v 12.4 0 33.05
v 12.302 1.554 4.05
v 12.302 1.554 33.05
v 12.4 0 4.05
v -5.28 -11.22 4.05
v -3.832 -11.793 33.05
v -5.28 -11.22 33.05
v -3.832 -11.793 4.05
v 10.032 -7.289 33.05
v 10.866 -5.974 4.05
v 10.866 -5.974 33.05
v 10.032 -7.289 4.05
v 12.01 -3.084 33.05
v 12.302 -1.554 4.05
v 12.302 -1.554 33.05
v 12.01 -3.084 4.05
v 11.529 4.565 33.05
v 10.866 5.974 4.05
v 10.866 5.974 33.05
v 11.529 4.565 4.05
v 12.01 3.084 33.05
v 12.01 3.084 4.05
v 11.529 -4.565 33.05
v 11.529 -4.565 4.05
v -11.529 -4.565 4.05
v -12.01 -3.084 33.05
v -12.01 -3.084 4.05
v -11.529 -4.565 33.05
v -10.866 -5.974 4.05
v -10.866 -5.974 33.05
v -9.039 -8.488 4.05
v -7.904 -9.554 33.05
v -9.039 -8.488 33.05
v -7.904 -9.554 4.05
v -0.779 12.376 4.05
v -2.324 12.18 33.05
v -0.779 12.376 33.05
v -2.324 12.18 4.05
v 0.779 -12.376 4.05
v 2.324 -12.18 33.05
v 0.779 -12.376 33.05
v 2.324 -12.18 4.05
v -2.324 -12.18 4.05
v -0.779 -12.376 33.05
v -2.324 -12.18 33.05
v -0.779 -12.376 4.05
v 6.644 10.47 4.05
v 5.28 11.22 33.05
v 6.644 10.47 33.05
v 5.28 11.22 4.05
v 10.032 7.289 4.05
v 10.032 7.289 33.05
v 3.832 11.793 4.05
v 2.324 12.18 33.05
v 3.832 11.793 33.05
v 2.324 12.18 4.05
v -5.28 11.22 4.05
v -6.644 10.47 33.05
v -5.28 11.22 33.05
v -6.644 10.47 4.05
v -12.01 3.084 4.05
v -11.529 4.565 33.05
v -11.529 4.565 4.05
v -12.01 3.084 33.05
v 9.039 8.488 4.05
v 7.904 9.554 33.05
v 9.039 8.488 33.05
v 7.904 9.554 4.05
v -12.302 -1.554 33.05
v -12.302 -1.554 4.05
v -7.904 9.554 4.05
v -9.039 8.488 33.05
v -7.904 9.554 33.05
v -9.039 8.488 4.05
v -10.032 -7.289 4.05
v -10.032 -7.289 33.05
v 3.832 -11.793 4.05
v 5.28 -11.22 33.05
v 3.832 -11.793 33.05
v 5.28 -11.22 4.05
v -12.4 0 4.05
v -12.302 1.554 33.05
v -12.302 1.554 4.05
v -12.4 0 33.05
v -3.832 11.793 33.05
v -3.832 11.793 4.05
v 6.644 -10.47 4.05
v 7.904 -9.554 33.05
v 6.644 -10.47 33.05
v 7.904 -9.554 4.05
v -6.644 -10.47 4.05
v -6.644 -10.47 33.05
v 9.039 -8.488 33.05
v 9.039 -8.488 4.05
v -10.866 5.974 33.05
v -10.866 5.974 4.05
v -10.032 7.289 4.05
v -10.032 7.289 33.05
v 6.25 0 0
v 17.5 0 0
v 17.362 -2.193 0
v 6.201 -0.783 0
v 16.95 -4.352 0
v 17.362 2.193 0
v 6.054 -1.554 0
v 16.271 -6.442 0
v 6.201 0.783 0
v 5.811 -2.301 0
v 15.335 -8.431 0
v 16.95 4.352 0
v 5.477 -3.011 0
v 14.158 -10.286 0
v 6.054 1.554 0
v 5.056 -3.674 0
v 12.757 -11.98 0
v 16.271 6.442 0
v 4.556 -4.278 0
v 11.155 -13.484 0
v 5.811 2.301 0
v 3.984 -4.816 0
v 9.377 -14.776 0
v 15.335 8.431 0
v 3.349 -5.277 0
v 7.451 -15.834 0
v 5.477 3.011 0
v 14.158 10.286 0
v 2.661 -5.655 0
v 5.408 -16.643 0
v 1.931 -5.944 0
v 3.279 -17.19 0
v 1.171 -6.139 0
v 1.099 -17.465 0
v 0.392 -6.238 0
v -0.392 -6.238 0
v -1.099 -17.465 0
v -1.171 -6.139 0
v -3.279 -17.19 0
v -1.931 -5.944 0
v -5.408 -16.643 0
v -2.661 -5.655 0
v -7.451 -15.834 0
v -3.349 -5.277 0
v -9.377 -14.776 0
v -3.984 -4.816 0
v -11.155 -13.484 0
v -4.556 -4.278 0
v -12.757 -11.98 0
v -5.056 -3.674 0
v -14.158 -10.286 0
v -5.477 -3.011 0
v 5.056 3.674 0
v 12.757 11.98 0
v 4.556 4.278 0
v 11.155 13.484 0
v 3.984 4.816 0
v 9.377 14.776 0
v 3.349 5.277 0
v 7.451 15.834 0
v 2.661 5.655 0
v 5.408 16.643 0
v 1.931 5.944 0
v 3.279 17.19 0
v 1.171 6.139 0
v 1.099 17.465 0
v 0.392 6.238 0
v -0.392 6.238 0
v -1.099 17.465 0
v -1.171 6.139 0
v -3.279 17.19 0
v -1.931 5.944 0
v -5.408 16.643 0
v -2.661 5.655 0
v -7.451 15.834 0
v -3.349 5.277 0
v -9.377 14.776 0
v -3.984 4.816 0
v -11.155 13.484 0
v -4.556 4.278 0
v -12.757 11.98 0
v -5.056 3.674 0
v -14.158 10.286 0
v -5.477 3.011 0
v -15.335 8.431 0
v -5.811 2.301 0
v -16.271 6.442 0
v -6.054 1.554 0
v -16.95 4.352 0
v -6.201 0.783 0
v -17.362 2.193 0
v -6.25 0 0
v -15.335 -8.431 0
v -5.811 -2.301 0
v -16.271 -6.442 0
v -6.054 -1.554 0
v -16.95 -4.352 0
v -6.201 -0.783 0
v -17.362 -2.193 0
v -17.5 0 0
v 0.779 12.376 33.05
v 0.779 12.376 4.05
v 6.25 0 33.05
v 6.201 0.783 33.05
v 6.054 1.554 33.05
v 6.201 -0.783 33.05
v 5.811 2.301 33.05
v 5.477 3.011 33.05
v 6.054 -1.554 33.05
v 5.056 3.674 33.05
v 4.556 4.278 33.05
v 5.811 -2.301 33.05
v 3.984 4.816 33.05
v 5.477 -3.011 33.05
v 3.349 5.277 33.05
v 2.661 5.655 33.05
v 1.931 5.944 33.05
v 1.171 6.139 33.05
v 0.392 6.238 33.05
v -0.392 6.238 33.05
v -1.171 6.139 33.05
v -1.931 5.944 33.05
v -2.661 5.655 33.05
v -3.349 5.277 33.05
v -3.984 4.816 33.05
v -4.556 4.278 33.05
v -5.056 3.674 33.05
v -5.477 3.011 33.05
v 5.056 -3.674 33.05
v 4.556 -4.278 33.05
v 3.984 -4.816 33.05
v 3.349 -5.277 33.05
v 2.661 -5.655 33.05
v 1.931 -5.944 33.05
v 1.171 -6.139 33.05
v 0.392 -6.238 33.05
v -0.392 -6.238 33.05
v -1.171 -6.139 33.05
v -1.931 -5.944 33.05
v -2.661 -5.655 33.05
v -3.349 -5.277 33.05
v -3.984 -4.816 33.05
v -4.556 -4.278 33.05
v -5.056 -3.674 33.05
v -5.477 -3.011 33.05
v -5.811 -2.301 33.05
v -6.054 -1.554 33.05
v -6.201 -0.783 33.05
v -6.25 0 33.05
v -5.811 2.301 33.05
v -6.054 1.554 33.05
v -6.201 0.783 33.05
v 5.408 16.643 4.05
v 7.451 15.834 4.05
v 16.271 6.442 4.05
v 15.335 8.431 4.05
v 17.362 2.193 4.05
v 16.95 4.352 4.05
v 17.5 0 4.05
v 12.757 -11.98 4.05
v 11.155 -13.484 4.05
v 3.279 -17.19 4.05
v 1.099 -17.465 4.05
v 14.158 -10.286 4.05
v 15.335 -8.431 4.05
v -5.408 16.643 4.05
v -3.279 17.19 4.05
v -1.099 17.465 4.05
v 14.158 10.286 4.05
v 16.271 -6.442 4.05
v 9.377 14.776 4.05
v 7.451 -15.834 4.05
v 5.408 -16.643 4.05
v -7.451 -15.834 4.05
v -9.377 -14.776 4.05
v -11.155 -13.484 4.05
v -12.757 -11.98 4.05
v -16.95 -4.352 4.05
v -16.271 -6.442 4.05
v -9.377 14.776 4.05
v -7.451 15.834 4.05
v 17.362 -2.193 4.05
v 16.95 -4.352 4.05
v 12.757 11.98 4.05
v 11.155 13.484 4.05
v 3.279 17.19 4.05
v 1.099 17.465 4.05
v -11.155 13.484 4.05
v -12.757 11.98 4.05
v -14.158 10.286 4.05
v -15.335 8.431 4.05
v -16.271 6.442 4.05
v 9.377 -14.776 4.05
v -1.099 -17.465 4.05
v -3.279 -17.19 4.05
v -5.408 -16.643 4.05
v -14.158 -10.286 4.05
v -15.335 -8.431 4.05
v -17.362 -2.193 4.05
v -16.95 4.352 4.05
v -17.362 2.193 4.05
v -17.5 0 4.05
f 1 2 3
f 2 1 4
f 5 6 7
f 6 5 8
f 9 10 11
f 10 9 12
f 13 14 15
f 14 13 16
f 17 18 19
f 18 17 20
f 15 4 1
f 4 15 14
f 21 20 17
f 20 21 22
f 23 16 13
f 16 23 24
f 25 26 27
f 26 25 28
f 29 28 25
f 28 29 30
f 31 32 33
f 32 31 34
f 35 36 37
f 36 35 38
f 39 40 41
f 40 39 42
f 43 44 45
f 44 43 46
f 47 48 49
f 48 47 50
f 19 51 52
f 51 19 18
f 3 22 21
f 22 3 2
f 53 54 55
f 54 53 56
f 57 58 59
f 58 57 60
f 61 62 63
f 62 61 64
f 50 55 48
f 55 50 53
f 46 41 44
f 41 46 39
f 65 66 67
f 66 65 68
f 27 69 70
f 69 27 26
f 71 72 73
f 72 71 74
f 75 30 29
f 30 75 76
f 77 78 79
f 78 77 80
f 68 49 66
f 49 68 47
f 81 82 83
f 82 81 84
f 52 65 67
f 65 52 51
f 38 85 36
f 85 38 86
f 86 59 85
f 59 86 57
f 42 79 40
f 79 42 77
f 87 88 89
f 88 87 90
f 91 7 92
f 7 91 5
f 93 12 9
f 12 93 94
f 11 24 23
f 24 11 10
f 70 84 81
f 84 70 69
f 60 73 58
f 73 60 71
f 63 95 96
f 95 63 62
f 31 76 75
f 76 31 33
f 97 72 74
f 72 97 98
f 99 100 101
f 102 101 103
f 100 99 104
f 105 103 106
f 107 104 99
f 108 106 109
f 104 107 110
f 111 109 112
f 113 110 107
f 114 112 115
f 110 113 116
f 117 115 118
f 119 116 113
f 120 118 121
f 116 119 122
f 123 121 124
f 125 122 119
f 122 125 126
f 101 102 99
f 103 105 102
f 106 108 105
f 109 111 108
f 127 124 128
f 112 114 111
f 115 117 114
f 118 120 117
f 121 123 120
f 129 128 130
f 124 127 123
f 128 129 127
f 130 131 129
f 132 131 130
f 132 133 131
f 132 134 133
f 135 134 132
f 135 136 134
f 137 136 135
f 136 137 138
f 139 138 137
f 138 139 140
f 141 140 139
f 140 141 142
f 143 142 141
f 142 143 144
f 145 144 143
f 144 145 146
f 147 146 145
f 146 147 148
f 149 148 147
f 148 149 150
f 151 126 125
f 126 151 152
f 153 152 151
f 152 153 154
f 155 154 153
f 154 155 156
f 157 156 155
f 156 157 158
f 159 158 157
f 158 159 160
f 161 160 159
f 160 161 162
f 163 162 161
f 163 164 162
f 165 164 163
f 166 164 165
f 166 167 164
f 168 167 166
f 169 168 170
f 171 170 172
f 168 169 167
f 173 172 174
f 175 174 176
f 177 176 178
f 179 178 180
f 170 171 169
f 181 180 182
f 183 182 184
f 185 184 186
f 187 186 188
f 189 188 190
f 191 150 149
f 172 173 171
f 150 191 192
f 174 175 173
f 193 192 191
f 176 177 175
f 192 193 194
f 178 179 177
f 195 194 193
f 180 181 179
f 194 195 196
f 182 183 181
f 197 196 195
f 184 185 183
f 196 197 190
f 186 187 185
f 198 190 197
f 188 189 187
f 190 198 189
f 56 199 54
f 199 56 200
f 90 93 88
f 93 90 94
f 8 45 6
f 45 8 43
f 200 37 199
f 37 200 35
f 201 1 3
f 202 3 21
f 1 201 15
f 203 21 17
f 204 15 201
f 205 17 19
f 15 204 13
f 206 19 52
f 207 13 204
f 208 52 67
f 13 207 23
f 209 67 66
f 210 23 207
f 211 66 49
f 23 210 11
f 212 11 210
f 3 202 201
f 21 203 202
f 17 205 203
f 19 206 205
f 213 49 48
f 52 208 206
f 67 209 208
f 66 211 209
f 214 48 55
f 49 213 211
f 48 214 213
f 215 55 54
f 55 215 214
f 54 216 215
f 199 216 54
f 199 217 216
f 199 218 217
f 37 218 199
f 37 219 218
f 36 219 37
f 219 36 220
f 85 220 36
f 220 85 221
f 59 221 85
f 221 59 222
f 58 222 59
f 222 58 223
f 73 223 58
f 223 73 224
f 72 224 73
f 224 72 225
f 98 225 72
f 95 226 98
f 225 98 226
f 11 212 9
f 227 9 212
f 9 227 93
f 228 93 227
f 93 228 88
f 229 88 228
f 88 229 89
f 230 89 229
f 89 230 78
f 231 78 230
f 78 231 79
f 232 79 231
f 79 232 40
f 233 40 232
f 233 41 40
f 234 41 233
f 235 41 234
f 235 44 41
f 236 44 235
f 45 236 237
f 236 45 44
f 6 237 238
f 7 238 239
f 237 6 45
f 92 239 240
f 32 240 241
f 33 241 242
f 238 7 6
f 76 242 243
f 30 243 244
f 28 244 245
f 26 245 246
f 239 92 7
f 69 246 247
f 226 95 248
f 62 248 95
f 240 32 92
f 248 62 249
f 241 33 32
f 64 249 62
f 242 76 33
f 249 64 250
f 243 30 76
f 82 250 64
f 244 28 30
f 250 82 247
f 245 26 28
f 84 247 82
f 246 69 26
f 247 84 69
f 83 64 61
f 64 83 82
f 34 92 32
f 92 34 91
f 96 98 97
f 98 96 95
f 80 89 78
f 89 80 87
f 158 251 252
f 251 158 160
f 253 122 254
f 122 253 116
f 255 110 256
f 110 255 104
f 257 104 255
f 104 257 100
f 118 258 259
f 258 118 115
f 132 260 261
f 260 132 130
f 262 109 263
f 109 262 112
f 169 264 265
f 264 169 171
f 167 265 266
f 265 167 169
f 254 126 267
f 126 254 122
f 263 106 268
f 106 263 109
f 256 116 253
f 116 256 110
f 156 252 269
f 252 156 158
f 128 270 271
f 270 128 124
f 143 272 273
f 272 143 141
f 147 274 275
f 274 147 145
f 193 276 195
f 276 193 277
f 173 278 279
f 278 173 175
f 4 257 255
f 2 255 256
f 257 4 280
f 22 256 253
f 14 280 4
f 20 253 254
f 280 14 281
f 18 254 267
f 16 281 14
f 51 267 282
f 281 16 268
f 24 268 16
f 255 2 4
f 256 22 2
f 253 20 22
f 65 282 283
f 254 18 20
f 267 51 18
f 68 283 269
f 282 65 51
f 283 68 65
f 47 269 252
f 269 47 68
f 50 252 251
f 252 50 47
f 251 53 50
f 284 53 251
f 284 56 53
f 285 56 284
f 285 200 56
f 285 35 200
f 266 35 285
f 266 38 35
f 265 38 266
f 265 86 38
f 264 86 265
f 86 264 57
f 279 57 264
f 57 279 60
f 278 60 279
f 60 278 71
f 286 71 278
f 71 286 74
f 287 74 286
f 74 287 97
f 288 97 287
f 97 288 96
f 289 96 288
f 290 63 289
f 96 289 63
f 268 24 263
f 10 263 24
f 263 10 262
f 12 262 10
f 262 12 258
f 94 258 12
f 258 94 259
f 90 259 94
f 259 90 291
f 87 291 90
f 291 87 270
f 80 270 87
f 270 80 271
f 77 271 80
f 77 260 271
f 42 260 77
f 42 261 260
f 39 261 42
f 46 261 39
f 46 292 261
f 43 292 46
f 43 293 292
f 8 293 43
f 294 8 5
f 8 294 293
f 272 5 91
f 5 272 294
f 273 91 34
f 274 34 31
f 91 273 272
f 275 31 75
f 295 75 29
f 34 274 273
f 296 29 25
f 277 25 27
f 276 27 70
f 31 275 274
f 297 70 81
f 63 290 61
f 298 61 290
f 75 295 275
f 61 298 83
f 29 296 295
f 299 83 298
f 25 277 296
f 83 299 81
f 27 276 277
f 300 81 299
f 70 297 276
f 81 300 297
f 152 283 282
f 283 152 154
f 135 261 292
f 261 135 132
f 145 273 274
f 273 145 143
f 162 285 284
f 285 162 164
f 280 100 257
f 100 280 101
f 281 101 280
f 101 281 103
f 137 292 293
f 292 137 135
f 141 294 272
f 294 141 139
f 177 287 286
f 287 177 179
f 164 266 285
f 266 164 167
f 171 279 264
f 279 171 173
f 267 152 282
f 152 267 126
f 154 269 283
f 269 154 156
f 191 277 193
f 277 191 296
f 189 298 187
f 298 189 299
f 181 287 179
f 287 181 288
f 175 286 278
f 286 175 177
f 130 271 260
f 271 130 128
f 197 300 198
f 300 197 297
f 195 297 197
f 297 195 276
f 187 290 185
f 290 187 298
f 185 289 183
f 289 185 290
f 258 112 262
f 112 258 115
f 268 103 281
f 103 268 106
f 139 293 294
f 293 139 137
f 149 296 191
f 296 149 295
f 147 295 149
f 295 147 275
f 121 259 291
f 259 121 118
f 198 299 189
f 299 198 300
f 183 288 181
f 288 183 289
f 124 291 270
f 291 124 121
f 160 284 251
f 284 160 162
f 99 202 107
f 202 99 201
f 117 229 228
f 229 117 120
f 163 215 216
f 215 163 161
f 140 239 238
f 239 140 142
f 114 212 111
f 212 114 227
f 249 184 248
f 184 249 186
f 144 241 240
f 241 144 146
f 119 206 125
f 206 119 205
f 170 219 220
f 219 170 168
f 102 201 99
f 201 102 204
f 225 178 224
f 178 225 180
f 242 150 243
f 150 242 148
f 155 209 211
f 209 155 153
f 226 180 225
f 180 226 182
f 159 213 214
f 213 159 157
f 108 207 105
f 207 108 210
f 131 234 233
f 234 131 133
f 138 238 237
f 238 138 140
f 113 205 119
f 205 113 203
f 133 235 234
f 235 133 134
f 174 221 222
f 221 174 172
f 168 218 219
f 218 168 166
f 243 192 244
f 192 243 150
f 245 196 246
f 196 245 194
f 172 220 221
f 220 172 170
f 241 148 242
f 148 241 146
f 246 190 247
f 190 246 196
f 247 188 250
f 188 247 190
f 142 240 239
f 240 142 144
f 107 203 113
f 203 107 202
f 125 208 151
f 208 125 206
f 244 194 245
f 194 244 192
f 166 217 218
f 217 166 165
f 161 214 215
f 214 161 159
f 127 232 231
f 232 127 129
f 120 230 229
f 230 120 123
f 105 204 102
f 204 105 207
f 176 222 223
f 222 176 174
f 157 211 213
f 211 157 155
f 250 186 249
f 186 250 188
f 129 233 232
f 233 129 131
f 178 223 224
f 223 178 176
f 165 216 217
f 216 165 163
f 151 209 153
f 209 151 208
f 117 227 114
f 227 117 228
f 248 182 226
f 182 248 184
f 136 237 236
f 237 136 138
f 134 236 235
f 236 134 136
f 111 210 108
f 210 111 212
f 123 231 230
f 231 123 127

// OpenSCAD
// an adapter for culture tubes to HACH 2100Q

$fn=50;

//glass capped tube 
diamtube=12+0.5;  

//lip
diamlip=35;
hlip=4.05;

//hach vial 
diam=24.8;
depth=29+hlip; //lighpath starts 29mm deep, so add hight of lip 


difference(){
    union(){
        //body
        translate([0,0,depth/2]) cylinder(h=depth,d=diam, center=true);
        //lip
        translate([0,0,hlip/2]) cylinder(h=hlip, d=diamlip, center=true);
    };
//space for tube
cylinder(h=depth*10, d=diamtube, center=true);
   
 };
